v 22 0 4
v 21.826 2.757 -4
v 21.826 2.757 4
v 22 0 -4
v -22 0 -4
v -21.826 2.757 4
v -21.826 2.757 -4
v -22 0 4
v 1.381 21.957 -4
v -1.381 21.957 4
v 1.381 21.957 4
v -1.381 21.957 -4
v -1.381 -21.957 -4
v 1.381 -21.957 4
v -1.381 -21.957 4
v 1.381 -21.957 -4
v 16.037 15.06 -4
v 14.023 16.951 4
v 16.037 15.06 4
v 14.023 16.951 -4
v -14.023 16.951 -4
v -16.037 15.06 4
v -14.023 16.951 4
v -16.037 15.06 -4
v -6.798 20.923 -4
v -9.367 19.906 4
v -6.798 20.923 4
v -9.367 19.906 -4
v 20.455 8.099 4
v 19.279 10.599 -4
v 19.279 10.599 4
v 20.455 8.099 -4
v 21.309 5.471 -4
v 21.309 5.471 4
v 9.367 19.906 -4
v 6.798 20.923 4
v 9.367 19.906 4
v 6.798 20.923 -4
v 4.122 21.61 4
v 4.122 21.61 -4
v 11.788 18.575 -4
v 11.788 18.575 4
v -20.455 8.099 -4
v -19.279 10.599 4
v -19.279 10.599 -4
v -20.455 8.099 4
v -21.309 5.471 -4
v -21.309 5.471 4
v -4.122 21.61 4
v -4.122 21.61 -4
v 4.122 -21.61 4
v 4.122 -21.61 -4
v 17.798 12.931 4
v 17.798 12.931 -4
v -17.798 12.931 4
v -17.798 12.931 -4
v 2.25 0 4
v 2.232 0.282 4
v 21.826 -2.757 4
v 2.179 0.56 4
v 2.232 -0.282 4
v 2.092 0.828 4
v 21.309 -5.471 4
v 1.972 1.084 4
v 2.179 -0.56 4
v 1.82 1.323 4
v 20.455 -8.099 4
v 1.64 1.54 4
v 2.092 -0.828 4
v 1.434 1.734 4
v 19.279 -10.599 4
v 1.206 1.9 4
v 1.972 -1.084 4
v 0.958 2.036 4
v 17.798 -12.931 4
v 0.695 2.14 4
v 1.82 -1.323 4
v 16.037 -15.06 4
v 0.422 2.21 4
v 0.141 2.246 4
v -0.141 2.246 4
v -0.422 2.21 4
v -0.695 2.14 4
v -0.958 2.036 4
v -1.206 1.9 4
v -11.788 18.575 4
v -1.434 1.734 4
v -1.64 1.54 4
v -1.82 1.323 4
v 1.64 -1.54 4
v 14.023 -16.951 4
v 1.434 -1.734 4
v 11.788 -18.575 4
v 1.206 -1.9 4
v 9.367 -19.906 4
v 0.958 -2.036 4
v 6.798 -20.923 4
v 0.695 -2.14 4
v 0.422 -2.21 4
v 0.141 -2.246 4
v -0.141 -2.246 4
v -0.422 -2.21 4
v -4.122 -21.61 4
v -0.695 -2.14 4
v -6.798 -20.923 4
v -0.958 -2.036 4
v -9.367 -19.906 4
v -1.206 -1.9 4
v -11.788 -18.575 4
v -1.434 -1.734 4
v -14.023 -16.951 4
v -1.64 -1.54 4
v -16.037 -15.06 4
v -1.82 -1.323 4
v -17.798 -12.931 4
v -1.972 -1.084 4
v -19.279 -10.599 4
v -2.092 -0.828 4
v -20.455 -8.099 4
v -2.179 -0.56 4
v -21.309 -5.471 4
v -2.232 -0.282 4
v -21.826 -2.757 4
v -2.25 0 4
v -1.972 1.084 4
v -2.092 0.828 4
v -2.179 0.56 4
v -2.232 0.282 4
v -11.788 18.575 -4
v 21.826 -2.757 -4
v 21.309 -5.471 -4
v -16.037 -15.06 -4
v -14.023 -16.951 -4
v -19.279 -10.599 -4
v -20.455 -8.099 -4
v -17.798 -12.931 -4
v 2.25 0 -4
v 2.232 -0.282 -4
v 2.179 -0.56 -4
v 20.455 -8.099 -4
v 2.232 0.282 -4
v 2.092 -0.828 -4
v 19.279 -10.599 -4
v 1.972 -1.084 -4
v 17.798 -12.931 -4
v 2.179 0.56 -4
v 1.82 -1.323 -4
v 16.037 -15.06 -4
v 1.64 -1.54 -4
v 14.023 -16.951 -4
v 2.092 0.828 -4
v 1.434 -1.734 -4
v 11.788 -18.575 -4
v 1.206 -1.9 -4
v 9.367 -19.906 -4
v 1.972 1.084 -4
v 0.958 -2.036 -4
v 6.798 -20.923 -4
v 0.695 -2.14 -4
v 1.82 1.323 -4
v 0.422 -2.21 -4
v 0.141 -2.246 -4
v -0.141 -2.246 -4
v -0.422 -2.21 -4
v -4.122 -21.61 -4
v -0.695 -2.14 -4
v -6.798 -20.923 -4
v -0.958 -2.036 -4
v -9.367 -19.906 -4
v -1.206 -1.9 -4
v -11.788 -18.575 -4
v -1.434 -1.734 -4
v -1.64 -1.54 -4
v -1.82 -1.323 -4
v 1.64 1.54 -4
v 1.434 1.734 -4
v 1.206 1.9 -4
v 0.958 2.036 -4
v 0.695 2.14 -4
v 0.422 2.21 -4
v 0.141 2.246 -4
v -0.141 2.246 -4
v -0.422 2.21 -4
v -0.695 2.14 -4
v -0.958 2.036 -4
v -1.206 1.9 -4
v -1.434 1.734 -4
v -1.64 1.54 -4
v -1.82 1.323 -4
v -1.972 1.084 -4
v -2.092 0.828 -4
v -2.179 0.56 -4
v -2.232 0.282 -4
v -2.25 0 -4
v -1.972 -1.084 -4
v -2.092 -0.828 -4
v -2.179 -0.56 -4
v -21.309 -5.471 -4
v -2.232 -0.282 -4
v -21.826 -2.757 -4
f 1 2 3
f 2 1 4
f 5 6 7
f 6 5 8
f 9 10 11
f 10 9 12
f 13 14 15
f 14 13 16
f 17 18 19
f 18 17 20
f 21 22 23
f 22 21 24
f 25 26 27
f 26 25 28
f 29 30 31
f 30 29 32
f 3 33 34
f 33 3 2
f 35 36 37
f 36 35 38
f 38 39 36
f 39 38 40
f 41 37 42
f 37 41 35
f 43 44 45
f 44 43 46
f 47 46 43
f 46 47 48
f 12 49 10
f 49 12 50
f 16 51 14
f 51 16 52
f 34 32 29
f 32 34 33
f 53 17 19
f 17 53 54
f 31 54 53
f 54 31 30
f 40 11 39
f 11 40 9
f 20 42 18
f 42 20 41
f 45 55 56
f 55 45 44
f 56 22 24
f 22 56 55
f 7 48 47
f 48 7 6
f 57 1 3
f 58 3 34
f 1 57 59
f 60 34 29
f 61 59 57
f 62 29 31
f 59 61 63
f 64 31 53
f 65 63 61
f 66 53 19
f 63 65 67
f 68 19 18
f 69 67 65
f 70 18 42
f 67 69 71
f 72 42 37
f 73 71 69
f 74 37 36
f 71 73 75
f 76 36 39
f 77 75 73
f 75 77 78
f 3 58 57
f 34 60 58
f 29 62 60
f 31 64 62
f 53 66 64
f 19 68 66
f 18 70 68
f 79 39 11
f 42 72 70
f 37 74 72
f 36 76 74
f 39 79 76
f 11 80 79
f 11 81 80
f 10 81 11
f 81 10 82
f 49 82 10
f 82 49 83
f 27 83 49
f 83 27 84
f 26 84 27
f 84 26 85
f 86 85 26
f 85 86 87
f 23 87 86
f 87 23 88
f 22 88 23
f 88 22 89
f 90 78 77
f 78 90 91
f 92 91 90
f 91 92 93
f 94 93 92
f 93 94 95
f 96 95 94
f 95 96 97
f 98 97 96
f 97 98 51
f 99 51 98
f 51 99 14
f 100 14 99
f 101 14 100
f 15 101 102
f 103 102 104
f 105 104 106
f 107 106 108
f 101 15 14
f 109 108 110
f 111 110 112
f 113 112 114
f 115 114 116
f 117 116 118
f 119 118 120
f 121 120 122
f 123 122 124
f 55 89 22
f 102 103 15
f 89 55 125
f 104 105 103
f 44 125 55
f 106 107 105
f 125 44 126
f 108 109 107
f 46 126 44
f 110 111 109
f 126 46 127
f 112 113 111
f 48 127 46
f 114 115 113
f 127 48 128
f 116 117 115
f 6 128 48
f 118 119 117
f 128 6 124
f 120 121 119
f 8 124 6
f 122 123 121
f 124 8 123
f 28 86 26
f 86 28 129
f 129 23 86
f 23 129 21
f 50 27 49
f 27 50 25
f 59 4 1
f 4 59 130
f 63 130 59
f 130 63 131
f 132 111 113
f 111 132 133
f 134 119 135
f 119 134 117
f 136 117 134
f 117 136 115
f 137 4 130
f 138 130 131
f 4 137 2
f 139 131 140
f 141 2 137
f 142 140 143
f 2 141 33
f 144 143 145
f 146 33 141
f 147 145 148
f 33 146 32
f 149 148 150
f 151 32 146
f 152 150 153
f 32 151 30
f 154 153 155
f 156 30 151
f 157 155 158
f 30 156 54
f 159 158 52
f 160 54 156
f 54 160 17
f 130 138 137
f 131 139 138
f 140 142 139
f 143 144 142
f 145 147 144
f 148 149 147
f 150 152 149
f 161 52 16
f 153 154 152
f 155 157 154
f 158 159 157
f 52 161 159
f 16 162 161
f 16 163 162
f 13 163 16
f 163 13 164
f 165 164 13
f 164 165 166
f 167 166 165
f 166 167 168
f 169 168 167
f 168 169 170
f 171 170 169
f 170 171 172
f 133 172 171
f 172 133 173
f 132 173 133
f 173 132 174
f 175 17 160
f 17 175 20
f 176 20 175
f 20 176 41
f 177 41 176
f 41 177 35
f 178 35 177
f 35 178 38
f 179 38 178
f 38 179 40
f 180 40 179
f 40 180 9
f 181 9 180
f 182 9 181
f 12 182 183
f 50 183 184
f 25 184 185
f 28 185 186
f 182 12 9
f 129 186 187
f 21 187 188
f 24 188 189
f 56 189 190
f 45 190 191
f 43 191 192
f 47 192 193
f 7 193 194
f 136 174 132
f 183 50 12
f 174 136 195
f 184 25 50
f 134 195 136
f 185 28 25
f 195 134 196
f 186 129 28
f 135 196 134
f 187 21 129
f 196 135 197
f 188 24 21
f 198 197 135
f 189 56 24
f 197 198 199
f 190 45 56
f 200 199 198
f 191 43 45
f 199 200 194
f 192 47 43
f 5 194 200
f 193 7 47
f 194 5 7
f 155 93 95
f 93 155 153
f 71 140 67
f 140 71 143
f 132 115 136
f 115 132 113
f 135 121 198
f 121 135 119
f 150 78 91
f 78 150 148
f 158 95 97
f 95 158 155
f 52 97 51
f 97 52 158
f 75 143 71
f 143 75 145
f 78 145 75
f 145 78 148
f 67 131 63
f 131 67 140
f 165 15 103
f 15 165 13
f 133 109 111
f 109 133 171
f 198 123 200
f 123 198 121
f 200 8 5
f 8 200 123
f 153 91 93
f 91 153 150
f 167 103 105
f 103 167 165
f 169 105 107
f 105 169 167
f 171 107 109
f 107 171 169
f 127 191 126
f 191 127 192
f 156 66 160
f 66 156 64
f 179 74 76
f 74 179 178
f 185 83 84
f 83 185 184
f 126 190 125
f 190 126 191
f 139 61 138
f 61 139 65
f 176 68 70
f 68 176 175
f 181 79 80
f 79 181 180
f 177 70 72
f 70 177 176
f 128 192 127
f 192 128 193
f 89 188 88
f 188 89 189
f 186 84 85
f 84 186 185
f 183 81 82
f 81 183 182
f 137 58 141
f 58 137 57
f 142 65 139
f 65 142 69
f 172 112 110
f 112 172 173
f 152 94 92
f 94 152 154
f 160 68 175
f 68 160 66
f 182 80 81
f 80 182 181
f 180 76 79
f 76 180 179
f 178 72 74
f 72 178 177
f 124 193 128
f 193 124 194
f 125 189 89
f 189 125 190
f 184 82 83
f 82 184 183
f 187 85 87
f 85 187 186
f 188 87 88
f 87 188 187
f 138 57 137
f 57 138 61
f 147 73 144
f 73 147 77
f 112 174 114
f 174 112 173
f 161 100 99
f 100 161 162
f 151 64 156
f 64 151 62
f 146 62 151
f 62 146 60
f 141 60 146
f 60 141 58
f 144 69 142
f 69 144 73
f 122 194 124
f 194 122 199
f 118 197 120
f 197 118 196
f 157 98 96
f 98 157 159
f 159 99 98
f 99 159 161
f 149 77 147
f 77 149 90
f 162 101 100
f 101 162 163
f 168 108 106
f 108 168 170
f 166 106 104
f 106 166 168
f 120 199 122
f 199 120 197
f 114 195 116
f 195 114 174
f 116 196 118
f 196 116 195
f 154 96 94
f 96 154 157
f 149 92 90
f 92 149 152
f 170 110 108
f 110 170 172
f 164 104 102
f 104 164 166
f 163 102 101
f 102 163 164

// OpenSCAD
$fn = 50;


difference() {
	union() {
		translate(v = [0, 0, -4.0000000000]) {
			cylinder(h = 8, r = 22.0000000000);
		}
	}
	union() {
		translate(v = [0, 0, -100.0000000000]) {
			cylinder(h = 200, r = 2.2500000000);
		}
	}
}
